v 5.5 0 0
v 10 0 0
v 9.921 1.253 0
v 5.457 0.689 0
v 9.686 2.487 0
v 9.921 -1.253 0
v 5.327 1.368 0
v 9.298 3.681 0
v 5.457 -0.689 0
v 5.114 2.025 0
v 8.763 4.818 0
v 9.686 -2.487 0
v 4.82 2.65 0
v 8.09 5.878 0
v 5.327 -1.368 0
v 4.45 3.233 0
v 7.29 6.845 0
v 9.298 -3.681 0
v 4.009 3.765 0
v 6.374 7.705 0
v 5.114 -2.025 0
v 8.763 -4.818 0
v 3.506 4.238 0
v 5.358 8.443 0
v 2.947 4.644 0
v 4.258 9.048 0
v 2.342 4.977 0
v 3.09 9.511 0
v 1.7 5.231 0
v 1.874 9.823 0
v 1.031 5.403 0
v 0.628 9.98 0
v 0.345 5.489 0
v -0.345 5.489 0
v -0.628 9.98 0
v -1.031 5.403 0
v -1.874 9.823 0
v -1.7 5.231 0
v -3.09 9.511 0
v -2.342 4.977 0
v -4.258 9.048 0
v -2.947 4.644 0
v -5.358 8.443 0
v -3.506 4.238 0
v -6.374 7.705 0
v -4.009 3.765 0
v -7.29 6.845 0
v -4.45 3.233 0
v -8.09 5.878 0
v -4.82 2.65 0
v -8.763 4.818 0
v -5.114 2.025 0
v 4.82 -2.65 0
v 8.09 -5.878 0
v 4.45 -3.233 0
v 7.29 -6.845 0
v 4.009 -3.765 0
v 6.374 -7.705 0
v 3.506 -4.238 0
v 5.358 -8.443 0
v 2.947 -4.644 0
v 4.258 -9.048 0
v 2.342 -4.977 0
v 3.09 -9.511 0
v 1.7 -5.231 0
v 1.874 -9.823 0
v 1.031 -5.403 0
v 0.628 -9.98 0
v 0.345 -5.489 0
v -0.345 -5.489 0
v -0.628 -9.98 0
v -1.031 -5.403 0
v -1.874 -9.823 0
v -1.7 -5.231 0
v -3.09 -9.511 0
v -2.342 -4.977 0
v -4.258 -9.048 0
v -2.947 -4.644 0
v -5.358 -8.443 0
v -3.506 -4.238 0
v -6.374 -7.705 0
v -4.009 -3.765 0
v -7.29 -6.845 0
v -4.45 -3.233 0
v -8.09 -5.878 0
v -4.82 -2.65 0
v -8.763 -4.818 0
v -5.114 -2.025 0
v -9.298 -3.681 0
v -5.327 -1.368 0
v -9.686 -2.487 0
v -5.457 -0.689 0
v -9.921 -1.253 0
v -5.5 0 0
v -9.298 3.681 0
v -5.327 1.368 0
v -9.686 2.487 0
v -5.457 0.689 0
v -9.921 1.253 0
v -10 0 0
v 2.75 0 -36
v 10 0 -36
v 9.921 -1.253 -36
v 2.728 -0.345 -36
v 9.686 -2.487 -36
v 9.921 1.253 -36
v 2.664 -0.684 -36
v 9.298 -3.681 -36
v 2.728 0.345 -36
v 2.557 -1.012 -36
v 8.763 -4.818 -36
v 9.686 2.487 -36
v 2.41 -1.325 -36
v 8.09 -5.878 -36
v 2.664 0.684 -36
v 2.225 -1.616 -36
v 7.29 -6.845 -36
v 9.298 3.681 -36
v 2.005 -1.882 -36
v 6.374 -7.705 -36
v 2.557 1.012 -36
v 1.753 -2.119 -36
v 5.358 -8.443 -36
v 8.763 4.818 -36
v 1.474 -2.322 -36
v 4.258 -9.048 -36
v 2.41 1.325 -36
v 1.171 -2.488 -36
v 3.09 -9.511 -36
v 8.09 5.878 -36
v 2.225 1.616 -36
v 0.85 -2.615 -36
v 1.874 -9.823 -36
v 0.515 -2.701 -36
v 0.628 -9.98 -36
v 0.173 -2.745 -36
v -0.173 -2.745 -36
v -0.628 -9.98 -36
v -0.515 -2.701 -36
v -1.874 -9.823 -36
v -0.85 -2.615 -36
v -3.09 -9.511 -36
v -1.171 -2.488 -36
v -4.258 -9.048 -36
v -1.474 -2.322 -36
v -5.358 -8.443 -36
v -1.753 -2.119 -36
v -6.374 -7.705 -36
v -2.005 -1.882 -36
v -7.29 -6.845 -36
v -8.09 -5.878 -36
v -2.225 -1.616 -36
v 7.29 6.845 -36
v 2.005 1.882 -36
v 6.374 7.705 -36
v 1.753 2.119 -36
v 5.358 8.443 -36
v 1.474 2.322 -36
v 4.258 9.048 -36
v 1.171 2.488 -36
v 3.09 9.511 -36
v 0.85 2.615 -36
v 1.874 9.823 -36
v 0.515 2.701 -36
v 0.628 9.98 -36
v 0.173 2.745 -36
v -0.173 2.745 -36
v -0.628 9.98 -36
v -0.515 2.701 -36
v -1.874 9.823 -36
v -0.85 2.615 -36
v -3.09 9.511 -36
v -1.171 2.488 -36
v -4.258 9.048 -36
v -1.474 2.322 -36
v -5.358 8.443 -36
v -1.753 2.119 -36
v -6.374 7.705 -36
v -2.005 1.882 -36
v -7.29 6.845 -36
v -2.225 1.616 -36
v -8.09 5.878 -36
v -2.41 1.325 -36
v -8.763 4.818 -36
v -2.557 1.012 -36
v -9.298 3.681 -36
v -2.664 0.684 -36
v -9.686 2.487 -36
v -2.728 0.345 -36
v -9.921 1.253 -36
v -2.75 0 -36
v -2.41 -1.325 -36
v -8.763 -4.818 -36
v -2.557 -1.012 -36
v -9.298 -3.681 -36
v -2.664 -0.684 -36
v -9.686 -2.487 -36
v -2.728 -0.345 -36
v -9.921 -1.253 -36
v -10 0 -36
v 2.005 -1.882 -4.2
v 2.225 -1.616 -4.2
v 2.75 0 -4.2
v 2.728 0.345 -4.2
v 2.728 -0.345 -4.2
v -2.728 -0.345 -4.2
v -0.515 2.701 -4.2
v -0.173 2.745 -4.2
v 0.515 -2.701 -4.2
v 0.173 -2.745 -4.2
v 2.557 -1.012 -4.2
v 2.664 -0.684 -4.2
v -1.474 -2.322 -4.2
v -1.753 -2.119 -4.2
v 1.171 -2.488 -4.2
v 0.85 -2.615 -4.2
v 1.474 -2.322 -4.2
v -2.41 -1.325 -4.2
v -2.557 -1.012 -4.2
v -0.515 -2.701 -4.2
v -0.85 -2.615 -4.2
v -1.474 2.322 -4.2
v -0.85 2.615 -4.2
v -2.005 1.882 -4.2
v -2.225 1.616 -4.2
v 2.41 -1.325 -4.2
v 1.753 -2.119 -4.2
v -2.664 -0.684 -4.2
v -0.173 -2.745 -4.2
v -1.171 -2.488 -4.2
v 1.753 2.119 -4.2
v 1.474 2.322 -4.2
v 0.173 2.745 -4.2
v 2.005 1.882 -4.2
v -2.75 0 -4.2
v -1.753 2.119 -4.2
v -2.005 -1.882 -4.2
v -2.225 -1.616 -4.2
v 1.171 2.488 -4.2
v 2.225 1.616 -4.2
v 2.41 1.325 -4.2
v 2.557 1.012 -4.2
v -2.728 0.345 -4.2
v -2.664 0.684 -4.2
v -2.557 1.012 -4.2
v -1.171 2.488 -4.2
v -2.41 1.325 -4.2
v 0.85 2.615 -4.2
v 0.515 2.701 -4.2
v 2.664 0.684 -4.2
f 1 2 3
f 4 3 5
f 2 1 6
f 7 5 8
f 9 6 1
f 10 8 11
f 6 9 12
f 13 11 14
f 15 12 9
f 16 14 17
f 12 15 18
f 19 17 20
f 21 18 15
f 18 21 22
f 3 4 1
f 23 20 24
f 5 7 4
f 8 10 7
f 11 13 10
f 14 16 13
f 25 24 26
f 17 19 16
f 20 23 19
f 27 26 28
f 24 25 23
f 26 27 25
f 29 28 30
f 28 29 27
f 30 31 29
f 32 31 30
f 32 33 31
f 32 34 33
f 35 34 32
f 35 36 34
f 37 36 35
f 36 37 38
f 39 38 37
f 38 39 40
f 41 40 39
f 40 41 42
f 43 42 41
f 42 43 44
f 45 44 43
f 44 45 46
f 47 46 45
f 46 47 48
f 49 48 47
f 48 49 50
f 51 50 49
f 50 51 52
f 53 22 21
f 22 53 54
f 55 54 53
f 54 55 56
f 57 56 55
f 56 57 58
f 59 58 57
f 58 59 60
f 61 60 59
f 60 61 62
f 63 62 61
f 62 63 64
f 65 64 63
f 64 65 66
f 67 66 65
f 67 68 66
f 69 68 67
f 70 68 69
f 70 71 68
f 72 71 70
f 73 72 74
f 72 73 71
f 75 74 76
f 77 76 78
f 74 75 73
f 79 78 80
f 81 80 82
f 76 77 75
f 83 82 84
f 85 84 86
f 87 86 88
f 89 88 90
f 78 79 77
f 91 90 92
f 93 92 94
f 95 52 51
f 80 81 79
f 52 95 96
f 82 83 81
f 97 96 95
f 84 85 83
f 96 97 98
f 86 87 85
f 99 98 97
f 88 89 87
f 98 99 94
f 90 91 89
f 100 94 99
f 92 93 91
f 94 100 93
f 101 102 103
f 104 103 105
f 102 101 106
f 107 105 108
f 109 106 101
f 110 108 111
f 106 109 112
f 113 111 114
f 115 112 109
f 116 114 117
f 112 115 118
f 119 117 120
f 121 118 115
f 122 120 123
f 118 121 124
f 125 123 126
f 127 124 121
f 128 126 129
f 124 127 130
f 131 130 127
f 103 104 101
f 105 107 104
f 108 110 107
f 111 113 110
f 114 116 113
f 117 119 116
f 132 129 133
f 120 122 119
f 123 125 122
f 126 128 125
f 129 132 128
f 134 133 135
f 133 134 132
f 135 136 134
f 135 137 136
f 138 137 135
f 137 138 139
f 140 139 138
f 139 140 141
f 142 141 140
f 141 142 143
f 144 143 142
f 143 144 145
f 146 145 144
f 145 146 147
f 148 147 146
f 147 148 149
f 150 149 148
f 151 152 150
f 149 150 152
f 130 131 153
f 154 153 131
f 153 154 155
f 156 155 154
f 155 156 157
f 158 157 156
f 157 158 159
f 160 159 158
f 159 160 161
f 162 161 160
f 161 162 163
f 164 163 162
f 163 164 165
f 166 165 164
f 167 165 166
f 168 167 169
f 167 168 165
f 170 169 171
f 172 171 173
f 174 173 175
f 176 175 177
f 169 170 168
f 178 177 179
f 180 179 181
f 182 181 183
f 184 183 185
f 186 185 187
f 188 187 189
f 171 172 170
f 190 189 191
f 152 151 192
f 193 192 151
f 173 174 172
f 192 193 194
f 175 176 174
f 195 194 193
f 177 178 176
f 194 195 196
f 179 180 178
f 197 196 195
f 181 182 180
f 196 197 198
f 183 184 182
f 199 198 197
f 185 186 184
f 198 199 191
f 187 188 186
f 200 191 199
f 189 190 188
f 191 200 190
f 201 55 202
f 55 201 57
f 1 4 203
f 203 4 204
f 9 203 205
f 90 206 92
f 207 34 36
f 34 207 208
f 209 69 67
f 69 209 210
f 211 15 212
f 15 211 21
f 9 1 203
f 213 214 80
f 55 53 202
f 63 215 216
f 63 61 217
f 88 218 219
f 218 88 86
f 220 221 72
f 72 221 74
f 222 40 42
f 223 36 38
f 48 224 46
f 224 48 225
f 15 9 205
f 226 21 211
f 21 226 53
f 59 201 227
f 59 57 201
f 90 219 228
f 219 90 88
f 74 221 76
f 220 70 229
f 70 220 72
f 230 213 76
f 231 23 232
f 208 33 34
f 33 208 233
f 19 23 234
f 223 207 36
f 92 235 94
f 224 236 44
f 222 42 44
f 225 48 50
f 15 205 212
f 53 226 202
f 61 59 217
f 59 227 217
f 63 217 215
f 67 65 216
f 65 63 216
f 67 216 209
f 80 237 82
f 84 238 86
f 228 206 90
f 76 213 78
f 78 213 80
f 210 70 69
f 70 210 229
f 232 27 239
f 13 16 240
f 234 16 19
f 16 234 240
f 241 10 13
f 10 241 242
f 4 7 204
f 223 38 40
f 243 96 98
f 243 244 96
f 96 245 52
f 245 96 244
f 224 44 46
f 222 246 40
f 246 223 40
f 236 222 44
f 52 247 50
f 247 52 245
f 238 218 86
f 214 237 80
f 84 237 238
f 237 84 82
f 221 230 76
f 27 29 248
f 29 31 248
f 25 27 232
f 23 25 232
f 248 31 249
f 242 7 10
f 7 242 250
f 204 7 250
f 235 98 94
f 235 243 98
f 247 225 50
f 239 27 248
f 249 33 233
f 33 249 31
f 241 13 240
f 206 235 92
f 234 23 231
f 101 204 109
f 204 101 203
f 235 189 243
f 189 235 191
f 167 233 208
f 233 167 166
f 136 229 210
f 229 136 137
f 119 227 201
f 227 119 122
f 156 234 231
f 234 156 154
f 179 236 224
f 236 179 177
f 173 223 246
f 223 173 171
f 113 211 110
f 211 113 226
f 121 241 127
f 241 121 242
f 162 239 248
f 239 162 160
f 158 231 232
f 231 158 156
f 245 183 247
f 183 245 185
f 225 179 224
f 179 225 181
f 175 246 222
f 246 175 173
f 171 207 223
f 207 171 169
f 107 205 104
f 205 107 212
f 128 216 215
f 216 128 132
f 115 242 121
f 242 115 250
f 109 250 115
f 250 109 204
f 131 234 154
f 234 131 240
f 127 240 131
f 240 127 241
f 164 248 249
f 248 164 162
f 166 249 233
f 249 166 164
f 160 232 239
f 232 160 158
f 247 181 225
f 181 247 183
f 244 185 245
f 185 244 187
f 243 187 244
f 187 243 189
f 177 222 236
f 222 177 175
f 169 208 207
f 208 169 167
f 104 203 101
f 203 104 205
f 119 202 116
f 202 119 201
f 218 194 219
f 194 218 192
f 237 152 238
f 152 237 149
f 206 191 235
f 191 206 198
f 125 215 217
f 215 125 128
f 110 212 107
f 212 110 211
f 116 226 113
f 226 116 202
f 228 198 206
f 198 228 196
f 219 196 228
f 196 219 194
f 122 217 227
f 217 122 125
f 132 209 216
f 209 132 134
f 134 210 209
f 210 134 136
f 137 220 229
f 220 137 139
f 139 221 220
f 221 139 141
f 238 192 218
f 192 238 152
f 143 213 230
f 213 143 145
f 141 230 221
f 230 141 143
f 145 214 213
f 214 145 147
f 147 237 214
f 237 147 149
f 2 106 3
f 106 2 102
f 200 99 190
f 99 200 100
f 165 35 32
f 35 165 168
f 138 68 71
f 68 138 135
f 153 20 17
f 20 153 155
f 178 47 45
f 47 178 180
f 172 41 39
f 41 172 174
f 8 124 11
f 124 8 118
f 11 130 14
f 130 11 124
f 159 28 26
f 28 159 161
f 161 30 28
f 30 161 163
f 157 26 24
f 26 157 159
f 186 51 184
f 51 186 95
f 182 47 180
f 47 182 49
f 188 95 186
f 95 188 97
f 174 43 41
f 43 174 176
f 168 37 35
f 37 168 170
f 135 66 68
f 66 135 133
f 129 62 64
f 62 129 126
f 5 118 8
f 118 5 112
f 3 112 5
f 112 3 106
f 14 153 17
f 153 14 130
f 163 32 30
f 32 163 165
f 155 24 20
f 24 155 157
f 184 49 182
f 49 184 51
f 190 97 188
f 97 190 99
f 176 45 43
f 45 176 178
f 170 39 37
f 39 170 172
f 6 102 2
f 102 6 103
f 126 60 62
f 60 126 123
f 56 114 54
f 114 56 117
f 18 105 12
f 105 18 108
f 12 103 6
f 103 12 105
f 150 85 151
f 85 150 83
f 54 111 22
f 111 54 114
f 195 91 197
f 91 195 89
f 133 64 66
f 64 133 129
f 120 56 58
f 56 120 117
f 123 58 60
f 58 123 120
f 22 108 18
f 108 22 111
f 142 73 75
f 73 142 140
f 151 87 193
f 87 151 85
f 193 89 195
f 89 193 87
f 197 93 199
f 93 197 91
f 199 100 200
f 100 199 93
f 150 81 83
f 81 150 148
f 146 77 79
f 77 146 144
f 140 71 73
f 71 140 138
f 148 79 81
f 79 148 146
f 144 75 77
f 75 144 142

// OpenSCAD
$fn = 50;


difference() {
	union() {
		translate(v = [0, 0, -36.0000000000]) {
			cylinder(h = 36, r = 10.0000000000);
		}
		cylinder(h = 0, r = 16.0000000000);
	}
	union() {
		translate(v = [0, 0, 0]) {
			rotate(a = [0, 0, 0]) {
				difference() {
					union() {
						#translate(v = [0, 0, -36.0000000000]) {
							cylinder(h = 36, r = 2.2500000000);
						}
						#translate(v = [0, 0, -4.2000000000]) {
							cylinder(h = 4.2000000000, r1 = 2.7500000000, r2 = 5.5000000000);
						}
						#translate(v = [0, 0, -36.0000000000]) {
							cylinder(h = 36, r = 2.7500000000);
						}
						#translate(v = [0, 0, -36.0000000000]) {
							cylinder(h = 36, r = 2.2500000000);
						}
					}
					union();
				}
			}
		}
	}
}
